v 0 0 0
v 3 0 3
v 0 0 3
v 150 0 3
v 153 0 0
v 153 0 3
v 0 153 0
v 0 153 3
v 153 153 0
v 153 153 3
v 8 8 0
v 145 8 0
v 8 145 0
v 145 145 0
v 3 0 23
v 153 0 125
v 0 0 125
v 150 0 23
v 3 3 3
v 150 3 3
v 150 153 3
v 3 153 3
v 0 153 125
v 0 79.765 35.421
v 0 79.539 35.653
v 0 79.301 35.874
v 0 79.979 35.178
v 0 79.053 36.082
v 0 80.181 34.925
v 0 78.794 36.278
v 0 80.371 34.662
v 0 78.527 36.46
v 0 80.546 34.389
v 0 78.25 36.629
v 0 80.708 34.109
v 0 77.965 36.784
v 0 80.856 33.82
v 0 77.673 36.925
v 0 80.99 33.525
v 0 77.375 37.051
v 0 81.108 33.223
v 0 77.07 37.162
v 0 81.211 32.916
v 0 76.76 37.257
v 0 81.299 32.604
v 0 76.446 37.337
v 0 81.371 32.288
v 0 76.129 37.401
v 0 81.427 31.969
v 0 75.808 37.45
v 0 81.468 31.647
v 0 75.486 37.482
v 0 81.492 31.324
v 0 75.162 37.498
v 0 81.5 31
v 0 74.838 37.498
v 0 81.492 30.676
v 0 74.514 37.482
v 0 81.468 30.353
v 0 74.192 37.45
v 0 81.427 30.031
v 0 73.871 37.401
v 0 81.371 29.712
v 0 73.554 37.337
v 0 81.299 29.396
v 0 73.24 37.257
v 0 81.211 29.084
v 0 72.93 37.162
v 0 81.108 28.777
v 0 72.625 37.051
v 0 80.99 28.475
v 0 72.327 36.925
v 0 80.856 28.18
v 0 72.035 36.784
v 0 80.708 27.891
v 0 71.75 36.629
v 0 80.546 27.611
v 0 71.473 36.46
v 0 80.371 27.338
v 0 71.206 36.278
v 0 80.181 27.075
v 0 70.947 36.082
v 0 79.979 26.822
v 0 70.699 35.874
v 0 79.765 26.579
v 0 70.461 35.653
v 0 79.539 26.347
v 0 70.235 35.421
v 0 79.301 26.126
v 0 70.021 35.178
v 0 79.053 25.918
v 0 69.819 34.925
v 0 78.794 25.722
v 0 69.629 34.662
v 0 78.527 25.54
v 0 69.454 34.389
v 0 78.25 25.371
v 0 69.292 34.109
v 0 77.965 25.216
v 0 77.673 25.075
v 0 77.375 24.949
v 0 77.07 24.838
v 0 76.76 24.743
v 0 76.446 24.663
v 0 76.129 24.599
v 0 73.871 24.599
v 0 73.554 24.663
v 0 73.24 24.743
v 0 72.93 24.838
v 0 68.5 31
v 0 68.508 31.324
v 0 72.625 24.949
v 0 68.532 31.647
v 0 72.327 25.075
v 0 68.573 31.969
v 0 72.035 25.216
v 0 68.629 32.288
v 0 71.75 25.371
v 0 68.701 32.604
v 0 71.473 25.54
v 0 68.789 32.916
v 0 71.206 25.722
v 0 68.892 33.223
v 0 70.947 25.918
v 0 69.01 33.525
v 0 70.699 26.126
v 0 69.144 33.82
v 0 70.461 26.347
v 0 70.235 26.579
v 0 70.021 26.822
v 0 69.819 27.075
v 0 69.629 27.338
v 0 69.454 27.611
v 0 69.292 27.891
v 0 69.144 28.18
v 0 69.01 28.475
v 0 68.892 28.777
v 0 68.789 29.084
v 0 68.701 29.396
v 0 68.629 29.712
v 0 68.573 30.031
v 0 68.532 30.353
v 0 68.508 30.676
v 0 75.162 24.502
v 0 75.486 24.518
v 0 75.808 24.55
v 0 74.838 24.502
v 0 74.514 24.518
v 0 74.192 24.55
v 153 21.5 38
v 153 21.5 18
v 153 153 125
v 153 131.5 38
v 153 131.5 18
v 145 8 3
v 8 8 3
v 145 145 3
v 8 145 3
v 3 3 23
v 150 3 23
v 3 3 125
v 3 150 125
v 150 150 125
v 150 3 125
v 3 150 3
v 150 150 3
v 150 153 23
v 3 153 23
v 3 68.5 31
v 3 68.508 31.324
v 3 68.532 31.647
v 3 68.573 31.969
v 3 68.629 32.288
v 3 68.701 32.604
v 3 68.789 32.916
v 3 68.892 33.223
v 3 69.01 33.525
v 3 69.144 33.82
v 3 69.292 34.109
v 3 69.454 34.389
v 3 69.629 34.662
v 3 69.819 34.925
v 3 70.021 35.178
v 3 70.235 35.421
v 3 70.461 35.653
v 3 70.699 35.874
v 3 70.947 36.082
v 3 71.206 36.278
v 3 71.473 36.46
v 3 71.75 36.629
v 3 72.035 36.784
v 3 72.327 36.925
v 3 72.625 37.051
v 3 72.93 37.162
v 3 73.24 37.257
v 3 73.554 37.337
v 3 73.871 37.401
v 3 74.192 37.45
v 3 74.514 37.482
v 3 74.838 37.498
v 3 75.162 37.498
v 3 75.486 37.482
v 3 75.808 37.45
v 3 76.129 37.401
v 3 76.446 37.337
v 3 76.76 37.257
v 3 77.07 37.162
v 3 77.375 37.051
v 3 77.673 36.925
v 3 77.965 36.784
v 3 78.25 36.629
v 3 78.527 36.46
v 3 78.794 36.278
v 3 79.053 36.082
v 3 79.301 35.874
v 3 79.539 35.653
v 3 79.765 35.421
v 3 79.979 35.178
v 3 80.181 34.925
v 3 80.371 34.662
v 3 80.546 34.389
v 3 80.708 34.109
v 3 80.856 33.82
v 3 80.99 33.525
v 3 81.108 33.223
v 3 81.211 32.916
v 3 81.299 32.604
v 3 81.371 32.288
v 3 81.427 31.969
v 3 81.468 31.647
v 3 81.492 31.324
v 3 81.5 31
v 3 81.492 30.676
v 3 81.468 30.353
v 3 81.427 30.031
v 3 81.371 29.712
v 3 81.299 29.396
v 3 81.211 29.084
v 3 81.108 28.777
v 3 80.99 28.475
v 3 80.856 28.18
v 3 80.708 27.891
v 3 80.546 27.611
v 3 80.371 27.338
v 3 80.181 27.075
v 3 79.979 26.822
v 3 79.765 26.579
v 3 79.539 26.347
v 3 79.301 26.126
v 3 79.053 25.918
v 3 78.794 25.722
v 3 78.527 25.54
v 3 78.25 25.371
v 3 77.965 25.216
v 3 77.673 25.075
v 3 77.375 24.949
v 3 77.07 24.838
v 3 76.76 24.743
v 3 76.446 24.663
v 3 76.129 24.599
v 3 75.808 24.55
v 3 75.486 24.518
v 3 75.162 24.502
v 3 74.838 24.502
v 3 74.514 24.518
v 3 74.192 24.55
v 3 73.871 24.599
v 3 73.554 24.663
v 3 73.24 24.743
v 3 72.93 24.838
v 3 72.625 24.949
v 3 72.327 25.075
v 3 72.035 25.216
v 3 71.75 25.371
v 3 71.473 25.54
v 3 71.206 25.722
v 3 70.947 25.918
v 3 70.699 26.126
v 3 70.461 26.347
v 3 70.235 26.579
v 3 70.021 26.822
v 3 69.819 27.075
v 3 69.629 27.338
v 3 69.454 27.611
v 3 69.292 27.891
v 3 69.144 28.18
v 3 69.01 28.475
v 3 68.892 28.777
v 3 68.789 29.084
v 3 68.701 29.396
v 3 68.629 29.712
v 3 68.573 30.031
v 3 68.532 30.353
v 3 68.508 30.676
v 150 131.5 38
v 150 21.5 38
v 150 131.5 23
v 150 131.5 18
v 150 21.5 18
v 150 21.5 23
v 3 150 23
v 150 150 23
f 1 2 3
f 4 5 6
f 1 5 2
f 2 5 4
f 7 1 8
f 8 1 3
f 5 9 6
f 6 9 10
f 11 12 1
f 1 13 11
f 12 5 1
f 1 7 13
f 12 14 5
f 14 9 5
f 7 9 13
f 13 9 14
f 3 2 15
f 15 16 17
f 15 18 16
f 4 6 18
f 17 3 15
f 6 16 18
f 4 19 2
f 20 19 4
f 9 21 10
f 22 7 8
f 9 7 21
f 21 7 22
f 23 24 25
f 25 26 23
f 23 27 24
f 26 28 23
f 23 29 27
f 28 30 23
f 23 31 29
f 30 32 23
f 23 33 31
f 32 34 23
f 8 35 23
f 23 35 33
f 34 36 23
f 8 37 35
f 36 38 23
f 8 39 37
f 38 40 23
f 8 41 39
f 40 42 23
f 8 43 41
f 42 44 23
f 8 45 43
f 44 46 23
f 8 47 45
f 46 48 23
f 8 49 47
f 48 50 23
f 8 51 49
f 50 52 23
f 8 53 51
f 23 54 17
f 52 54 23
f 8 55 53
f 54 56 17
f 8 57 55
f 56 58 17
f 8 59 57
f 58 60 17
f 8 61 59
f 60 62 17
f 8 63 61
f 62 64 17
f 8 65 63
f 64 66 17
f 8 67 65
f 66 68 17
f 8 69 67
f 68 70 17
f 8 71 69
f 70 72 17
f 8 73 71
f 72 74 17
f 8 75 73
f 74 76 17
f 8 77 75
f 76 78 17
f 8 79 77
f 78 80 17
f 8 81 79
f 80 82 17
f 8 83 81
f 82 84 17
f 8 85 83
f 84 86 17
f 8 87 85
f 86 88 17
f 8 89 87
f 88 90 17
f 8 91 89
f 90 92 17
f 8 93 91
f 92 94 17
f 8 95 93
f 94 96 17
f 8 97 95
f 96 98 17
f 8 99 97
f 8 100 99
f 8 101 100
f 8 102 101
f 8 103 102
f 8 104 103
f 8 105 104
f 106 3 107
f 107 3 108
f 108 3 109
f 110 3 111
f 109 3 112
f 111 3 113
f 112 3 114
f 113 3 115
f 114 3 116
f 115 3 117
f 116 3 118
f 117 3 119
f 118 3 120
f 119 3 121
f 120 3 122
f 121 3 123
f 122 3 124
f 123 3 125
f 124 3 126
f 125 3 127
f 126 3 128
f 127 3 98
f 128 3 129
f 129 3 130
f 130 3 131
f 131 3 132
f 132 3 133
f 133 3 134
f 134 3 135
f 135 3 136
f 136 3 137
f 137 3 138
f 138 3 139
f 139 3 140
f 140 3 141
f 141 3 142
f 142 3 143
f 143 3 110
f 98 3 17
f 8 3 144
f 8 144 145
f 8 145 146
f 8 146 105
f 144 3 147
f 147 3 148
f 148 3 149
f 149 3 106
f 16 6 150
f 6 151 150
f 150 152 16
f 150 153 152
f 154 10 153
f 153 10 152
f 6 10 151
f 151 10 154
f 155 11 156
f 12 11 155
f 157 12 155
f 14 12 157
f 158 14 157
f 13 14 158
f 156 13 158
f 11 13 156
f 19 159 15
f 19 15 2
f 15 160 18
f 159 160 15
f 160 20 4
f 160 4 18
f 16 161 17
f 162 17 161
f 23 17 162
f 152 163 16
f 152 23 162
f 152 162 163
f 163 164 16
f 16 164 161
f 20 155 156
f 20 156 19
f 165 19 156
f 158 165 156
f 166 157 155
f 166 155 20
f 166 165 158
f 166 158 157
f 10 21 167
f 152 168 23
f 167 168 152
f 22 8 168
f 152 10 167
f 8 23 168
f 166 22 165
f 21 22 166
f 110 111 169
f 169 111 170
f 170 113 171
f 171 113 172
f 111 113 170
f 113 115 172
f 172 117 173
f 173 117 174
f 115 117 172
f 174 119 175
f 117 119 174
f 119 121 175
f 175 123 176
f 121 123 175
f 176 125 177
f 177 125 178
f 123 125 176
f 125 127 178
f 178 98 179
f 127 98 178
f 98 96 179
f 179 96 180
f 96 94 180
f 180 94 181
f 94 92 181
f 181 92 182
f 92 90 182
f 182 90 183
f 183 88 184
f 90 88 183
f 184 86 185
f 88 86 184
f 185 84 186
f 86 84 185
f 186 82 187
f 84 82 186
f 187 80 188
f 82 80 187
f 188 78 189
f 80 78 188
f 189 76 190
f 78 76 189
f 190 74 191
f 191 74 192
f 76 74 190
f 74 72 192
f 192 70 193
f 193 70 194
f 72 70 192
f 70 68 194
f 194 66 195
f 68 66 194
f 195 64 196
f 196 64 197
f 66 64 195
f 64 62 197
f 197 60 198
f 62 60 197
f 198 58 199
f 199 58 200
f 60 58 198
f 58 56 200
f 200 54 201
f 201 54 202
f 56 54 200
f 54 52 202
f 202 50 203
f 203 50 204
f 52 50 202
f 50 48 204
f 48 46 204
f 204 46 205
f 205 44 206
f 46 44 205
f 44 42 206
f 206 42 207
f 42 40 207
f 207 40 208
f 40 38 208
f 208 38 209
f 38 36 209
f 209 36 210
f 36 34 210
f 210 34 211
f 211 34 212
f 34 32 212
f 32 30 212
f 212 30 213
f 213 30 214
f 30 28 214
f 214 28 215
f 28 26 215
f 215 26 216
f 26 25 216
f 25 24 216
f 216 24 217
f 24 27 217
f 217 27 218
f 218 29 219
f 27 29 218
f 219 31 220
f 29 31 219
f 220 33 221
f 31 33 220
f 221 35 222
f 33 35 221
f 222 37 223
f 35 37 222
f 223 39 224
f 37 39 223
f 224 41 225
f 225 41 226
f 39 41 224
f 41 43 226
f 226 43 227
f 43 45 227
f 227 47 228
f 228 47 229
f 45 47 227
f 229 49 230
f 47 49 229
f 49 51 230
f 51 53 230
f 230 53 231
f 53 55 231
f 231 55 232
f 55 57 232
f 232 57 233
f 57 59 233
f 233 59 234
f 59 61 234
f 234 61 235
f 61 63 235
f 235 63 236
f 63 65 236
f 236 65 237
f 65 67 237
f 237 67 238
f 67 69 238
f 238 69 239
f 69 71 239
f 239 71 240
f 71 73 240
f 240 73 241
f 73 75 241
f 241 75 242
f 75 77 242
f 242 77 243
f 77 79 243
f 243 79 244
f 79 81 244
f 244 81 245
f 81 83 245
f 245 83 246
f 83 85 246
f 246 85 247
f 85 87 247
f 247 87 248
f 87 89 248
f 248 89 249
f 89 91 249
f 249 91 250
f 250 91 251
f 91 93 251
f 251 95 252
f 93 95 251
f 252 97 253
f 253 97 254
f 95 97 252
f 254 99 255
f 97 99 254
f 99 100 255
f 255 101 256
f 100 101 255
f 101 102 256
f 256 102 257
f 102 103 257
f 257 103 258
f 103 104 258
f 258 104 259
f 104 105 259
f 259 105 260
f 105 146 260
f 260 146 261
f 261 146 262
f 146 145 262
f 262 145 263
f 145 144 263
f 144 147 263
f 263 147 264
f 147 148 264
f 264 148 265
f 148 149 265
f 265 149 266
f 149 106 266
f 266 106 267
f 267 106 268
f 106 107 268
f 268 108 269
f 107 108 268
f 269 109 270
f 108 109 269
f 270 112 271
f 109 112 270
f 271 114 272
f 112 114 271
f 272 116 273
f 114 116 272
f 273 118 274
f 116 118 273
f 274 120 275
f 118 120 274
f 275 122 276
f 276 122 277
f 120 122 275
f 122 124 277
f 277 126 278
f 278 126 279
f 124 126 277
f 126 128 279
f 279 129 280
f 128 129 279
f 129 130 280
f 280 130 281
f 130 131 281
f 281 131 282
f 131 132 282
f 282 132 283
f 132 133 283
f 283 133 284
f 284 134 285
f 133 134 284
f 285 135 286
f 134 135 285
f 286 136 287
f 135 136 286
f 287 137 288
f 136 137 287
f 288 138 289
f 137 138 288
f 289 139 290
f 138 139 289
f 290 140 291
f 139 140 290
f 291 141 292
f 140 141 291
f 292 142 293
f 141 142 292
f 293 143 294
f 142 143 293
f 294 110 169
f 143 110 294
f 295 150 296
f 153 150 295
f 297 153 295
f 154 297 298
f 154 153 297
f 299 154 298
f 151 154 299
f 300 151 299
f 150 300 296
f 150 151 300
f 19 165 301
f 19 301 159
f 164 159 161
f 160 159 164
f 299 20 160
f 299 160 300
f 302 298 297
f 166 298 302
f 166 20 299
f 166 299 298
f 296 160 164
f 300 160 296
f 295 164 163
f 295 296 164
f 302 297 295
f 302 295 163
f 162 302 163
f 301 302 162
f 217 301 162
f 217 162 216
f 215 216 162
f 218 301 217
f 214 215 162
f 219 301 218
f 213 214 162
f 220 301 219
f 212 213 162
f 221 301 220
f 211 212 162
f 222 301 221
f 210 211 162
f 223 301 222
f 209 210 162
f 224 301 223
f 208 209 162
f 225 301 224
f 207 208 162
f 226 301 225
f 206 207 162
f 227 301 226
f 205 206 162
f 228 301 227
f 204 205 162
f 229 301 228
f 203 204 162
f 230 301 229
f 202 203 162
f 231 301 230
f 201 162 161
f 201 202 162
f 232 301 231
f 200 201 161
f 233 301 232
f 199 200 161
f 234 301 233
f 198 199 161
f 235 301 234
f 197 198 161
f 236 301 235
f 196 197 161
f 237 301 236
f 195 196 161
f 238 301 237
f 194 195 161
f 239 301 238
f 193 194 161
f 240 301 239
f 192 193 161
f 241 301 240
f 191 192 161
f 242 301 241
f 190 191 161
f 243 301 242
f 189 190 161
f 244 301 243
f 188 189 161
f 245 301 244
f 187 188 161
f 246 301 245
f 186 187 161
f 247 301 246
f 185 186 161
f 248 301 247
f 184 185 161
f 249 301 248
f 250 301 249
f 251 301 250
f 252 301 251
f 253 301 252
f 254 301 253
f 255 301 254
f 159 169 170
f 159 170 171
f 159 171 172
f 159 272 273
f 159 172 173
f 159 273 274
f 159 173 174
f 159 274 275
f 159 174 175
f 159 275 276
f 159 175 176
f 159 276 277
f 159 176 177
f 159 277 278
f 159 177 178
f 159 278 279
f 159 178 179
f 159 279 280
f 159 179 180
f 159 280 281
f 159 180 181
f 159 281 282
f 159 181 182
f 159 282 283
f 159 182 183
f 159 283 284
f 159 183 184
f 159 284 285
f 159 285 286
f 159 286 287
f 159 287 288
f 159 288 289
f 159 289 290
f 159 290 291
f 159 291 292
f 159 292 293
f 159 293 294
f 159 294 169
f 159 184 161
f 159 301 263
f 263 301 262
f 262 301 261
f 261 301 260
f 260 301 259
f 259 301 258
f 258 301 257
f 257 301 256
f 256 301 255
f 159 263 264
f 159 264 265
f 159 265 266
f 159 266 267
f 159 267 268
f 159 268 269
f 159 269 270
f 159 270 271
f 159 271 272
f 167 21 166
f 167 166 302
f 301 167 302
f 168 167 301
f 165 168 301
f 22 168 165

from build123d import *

# Parameters (mm, degrees)
SKETCH_W        = 153
SKETCH_H        = 153
PAD_DEPTH       = 3
SKETCH001_W     = 153
SKETCH001_H     = 153
SKETCH001_W_2   = 147
SKETCH001_H_2   = 147
PAD001_DEPTH    = 122
SKETCH002_W     = 147
SKETCH002_H     = 20
POCKET_DEPTH    = 200
SKETCH003_W     = 137
SKETCH003_H     = 137
POCKET001_DEPTH = 5
SKETCH004_R     = 6.5
POCKET002_DEPTH = 3
SKETCH005_W     = 110
SKETCH005_H     = 20
POCKET003_DEPTH = 3


with BuildPart() as part:
    # Sketch → Pad (new body)
    with BuildSketch(Plane.XY):
        with Locations((76.5, 76.5)):
            Rectangle(SKETCH_W, SKETCH_H)
    extrude(amount=PAD_DEPTH)

    # Sketch001 (on Face6 of Pad) → Pad001 (join)
    with BuildSketch(Plane.XY.offset(3)):
        with Locations((76.5, 76.5)):
            Rectangle(SKETCH001_W, SKETCH001_H)
        with Locations((76.5, 76.5)):
            Rectangle(SKETCH001_W_2, SKETCH001_H_2, mode=Mode.SUBTRACT)
    extrude(amount=PAD001_DEPTH)

    # Sketch002 (on Face10 of Pad001) → Pocket (cut)
    with BuildSketch(Plane(origin=(0, 153, 0), x_dir=(-1, 0, 0), z_dir=(0, 1, 0))):
        with Locations((-76.5, 13)):
            Rectangle(SKETCH002_W, SKETCH002_H)
    extrude(amount=-POCKET_DEPTH, mode=Mode.SUBTRACT)

    # Sketch003 (on Face4 of Pocket) → Pocket001 (cut)
    with BuildSketch(Plane(origin=(0, 0, 0), x_dir=(1, 0, 0), z_dir=(0, 0, -1))):
        with Locations((76.5, -76.5)):
            Rectangle(SKETCH003_W, SKETCH003_H)
    extrude(amount=-POCKET001_DEPTH, mode=Mode.SUBTRACT)

    # Sketch004 (on Face8 of Pocket001) → Pocket002 (cut)
    with BuildSketch(Plane(origin=(0, 0, 0), x_dir=(0, -1, 0), z_dir=(-1, 0, 0))):
        with Locations((-75, 31)):
            Circle(SKETCH004_R)
    extrude(amount=-POCKET002_DEPTH, mode=Mode.SUBTRACT)

    # Sketch005 (on Face9 of Pocket002) → Pocket003 (cut)
    with BuildSketch(Plane.YZ.offset(153)):
        with Locations((76.5, 28)):
            Rectangle(SKETCH005_W, SKETCH005_H)
    extrude(amount=-POCKET003_DEPTH, mode=Mode.SUBTRACT)


solid = part.part
